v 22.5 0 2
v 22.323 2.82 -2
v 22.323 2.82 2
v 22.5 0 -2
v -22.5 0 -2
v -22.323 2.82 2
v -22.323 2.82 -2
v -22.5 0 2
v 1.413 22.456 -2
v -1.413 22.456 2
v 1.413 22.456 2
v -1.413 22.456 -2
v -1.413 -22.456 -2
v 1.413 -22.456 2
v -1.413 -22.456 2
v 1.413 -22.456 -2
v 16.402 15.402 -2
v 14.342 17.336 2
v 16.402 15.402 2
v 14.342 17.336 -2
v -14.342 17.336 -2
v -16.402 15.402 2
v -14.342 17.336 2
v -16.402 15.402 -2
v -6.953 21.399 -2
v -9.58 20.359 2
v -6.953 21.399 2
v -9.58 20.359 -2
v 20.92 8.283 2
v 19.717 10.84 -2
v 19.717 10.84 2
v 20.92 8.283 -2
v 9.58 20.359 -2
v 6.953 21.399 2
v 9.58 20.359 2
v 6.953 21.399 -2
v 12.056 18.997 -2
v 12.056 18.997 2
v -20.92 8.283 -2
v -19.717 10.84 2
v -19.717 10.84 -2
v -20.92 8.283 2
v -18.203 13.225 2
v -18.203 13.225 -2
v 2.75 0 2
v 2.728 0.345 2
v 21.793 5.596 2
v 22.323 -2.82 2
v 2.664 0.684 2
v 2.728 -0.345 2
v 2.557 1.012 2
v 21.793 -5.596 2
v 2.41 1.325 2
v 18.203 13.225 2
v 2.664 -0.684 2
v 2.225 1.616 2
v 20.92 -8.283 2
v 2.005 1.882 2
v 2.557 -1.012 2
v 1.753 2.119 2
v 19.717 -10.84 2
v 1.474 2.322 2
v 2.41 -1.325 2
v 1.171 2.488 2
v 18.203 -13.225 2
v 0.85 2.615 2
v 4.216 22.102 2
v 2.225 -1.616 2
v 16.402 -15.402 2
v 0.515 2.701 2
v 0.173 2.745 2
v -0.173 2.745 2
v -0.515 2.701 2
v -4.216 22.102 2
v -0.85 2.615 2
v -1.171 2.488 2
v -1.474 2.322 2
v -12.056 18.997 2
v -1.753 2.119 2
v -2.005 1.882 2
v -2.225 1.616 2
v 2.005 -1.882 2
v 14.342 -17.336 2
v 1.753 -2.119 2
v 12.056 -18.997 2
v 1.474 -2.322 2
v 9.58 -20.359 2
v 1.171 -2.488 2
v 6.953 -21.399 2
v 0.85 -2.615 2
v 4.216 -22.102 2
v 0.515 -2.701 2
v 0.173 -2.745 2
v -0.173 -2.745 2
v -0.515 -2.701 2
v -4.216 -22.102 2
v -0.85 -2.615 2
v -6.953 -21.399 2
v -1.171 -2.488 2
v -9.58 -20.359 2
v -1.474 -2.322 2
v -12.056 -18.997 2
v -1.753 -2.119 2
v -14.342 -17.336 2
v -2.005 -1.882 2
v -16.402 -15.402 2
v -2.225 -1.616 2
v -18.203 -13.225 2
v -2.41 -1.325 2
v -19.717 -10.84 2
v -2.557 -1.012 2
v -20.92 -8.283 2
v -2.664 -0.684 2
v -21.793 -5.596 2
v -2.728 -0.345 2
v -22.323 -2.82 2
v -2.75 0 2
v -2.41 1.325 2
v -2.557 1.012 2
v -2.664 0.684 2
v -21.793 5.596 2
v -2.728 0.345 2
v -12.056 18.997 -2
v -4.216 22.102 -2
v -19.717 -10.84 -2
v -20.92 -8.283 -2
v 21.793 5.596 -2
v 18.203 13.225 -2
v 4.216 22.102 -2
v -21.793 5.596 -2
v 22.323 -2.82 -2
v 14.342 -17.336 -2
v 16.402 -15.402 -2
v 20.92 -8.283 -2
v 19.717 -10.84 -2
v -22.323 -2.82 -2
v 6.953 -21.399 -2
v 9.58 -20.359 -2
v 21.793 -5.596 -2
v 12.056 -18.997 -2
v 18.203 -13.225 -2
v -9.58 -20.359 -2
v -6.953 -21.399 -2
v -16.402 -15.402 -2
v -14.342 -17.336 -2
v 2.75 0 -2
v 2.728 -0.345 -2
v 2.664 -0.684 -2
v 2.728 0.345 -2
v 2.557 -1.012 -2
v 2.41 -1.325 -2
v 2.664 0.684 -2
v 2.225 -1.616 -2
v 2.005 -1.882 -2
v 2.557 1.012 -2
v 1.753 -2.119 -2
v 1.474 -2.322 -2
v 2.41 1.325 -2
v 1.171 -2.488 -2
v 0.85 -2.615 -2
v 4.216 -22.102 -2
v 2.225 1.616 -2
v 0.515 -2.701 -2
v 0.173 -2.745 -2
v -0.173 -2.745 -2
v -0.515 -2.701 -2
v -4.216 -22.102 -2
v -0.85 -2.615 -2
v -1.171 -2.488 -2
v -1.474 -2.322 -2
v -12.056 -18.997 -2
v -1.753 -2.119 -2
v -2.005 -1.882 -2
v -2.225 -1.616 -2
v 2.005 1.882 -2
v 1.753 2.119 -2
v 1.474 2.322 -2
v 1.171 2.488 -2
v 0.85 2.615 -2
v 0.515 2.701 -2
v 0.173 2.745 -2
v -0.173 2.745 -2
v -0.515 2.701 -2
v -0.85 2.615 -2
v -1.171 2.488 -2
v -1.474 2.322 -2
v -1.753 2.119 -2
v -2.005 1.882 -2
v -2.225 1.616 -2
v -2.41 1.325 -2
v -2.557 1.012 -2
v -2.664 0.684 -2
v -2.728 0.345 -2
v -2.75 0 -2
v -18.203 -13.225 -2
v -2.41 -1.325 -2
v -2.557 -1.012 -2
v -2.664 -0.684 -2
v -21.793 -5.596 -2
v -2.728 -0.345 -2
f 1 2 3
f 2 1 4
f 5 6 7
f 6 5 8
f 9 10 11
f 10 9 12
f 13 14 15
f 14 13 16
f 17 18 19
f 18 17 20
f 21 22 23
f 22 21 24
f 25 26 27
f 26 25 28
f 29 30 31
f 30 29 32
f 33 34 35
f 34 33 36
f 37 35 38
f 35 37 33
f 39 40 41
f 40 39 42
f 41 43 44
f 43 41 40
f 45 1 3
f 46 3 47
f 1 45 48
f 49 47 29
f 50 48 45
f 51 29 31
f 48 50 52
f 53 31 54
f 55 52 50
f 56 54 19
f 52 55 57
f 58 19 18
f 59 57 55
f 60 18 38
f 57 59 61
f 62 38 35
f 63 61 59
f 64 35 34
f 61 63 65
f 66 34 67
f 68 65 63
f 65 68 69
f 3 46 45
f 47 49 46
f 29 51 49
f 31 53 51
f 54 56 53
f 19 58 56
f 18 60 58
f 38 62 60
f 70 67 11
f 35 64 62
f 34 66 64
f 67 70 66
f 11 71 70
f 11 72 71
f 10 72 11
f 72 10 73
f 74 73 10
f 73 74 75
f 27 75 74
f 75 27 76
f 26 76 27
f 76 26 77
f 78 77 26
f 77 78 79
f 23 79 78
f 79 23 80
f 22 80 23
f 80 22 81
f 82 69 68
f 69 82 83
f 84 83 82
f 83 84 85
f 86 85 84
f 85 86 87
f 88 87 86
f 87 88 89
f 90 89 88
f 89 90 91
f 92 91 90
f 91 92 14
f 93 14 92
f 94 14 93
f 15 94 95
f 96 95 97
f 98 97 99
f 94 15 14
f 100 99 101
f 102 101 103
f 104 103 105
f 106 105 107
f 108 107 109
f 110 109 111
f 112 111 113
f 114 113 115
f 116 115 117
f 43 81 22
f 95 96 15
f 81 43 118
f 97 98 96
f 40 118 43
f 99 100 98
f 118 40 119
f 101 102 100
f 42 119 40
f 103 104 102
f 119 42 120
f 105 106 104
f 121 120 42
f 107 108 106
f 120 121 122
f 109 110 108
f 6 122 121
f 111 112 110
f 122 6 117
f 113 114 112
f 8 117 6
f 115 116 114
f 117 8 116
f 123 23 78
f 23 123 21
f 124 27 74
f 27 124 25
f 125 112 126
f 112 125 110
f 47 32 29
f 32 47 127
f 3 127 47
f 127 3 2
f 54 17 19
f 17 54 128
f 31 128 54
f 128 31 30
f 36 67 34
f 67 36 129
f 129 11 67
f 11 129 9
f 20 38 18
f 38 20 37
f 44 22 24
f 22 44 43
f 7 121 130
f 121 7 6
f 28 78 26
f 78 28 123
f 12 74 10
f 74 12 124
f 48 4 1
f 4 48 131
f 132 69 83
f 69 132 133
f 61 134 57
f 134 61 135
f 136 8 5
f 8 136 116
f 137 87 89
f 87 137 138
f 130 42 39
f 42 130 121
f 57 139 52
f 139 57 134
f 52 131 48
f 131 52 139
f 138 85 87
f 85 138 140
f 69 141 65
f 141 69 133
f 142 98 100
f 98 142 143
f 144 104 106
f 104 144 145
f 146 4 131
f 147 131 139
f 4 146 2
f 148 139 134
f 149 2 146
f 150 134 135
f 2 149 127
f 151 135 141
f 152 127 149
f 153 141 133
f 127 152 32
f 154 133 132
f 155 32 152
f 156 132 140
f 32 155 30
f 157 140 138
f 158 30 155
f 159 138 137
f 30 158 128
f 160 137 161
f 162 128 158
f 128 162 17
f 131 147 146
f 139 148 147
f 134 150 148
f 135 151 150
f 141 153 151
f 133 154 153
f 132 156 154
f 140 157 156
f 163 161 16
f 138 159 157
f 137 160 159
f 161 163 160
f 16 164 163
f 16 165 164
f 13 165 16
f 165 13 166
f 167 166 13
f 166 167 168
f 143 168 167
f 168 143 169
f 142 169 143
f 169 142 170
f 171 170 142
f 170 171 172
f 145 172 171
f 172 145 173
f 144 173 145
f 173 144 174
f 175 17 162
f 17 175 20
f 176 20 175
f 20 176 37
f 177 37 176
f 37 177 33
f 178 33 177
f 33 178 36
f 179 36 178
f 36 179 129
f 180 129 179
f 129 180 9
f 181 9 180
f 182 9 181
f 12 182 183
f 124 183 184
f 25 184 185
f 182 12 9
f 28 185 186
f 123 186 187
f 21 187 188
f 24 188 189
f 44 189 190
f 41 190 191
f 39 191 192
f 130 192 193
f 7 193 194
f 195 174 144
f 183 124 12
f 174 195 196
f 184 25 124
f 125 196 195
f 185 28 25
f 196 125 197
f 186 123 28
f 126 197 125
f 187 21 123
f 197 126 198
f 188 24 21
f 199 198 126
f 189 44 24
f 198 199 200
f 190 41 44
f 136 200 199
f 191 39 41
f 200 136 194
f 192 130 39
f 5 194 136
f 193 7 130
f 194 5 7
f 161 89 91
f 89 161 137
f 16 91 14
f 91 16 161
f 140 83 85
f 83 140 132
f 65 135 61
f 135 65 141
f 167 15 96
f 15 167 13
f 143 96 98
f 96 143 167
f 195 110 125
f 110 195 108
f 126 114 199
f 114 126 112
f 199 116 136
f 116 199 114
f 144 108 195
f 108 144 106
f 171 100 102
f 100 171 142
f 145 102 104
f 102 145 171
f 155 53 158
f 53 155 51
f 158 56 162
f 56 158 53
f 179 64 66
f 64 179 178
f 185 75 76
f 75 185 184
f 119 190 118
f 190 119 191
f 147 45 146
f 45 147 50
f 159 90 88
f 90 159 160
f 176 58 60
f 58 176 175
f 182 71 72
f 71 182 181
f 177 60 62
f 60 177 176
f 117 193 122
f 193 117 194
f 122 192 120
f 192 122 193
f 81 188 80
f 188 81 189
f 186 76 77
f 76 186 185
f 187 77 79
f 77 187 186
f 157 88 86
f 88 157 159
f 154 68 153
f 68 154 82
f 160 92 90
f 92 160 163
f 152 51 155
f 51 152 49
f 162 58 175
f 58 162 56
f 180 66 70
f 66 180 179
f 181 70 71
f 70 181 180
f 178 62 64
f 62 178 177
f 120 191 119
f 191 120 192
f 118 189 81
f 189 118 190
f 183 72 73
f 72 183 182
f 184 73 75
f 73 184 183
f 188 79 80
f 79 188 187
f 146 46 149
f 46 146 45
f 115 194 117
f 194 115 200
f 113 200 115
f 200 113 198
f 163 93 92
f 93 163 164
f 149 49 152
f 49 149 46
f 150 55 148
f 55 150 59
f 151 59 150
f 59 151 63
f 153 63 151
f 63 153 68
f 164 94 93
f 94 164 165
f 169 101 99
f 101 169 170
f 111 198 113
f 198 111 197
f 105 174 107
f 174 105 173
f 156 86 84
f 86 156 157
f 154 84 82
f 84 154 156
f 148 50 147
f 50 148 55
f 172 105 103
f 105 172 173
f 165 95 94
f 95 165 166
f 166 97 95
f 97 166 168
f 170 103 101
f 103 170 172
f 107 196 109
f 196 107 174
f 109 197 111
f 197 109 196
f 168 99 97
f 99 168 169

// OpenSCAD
$fn = 50;


difference() {
	union() {
		translate(v = [0, 0, -2.0000000000]) {
			cylinder(h = 4, r = 22.5000000000);
		}
	}
	union() {
		translate(v = [0, 0, -100.0000000000]) {
			cylinder(h = 200, r = 2.7500000000);
		}
	}
}
